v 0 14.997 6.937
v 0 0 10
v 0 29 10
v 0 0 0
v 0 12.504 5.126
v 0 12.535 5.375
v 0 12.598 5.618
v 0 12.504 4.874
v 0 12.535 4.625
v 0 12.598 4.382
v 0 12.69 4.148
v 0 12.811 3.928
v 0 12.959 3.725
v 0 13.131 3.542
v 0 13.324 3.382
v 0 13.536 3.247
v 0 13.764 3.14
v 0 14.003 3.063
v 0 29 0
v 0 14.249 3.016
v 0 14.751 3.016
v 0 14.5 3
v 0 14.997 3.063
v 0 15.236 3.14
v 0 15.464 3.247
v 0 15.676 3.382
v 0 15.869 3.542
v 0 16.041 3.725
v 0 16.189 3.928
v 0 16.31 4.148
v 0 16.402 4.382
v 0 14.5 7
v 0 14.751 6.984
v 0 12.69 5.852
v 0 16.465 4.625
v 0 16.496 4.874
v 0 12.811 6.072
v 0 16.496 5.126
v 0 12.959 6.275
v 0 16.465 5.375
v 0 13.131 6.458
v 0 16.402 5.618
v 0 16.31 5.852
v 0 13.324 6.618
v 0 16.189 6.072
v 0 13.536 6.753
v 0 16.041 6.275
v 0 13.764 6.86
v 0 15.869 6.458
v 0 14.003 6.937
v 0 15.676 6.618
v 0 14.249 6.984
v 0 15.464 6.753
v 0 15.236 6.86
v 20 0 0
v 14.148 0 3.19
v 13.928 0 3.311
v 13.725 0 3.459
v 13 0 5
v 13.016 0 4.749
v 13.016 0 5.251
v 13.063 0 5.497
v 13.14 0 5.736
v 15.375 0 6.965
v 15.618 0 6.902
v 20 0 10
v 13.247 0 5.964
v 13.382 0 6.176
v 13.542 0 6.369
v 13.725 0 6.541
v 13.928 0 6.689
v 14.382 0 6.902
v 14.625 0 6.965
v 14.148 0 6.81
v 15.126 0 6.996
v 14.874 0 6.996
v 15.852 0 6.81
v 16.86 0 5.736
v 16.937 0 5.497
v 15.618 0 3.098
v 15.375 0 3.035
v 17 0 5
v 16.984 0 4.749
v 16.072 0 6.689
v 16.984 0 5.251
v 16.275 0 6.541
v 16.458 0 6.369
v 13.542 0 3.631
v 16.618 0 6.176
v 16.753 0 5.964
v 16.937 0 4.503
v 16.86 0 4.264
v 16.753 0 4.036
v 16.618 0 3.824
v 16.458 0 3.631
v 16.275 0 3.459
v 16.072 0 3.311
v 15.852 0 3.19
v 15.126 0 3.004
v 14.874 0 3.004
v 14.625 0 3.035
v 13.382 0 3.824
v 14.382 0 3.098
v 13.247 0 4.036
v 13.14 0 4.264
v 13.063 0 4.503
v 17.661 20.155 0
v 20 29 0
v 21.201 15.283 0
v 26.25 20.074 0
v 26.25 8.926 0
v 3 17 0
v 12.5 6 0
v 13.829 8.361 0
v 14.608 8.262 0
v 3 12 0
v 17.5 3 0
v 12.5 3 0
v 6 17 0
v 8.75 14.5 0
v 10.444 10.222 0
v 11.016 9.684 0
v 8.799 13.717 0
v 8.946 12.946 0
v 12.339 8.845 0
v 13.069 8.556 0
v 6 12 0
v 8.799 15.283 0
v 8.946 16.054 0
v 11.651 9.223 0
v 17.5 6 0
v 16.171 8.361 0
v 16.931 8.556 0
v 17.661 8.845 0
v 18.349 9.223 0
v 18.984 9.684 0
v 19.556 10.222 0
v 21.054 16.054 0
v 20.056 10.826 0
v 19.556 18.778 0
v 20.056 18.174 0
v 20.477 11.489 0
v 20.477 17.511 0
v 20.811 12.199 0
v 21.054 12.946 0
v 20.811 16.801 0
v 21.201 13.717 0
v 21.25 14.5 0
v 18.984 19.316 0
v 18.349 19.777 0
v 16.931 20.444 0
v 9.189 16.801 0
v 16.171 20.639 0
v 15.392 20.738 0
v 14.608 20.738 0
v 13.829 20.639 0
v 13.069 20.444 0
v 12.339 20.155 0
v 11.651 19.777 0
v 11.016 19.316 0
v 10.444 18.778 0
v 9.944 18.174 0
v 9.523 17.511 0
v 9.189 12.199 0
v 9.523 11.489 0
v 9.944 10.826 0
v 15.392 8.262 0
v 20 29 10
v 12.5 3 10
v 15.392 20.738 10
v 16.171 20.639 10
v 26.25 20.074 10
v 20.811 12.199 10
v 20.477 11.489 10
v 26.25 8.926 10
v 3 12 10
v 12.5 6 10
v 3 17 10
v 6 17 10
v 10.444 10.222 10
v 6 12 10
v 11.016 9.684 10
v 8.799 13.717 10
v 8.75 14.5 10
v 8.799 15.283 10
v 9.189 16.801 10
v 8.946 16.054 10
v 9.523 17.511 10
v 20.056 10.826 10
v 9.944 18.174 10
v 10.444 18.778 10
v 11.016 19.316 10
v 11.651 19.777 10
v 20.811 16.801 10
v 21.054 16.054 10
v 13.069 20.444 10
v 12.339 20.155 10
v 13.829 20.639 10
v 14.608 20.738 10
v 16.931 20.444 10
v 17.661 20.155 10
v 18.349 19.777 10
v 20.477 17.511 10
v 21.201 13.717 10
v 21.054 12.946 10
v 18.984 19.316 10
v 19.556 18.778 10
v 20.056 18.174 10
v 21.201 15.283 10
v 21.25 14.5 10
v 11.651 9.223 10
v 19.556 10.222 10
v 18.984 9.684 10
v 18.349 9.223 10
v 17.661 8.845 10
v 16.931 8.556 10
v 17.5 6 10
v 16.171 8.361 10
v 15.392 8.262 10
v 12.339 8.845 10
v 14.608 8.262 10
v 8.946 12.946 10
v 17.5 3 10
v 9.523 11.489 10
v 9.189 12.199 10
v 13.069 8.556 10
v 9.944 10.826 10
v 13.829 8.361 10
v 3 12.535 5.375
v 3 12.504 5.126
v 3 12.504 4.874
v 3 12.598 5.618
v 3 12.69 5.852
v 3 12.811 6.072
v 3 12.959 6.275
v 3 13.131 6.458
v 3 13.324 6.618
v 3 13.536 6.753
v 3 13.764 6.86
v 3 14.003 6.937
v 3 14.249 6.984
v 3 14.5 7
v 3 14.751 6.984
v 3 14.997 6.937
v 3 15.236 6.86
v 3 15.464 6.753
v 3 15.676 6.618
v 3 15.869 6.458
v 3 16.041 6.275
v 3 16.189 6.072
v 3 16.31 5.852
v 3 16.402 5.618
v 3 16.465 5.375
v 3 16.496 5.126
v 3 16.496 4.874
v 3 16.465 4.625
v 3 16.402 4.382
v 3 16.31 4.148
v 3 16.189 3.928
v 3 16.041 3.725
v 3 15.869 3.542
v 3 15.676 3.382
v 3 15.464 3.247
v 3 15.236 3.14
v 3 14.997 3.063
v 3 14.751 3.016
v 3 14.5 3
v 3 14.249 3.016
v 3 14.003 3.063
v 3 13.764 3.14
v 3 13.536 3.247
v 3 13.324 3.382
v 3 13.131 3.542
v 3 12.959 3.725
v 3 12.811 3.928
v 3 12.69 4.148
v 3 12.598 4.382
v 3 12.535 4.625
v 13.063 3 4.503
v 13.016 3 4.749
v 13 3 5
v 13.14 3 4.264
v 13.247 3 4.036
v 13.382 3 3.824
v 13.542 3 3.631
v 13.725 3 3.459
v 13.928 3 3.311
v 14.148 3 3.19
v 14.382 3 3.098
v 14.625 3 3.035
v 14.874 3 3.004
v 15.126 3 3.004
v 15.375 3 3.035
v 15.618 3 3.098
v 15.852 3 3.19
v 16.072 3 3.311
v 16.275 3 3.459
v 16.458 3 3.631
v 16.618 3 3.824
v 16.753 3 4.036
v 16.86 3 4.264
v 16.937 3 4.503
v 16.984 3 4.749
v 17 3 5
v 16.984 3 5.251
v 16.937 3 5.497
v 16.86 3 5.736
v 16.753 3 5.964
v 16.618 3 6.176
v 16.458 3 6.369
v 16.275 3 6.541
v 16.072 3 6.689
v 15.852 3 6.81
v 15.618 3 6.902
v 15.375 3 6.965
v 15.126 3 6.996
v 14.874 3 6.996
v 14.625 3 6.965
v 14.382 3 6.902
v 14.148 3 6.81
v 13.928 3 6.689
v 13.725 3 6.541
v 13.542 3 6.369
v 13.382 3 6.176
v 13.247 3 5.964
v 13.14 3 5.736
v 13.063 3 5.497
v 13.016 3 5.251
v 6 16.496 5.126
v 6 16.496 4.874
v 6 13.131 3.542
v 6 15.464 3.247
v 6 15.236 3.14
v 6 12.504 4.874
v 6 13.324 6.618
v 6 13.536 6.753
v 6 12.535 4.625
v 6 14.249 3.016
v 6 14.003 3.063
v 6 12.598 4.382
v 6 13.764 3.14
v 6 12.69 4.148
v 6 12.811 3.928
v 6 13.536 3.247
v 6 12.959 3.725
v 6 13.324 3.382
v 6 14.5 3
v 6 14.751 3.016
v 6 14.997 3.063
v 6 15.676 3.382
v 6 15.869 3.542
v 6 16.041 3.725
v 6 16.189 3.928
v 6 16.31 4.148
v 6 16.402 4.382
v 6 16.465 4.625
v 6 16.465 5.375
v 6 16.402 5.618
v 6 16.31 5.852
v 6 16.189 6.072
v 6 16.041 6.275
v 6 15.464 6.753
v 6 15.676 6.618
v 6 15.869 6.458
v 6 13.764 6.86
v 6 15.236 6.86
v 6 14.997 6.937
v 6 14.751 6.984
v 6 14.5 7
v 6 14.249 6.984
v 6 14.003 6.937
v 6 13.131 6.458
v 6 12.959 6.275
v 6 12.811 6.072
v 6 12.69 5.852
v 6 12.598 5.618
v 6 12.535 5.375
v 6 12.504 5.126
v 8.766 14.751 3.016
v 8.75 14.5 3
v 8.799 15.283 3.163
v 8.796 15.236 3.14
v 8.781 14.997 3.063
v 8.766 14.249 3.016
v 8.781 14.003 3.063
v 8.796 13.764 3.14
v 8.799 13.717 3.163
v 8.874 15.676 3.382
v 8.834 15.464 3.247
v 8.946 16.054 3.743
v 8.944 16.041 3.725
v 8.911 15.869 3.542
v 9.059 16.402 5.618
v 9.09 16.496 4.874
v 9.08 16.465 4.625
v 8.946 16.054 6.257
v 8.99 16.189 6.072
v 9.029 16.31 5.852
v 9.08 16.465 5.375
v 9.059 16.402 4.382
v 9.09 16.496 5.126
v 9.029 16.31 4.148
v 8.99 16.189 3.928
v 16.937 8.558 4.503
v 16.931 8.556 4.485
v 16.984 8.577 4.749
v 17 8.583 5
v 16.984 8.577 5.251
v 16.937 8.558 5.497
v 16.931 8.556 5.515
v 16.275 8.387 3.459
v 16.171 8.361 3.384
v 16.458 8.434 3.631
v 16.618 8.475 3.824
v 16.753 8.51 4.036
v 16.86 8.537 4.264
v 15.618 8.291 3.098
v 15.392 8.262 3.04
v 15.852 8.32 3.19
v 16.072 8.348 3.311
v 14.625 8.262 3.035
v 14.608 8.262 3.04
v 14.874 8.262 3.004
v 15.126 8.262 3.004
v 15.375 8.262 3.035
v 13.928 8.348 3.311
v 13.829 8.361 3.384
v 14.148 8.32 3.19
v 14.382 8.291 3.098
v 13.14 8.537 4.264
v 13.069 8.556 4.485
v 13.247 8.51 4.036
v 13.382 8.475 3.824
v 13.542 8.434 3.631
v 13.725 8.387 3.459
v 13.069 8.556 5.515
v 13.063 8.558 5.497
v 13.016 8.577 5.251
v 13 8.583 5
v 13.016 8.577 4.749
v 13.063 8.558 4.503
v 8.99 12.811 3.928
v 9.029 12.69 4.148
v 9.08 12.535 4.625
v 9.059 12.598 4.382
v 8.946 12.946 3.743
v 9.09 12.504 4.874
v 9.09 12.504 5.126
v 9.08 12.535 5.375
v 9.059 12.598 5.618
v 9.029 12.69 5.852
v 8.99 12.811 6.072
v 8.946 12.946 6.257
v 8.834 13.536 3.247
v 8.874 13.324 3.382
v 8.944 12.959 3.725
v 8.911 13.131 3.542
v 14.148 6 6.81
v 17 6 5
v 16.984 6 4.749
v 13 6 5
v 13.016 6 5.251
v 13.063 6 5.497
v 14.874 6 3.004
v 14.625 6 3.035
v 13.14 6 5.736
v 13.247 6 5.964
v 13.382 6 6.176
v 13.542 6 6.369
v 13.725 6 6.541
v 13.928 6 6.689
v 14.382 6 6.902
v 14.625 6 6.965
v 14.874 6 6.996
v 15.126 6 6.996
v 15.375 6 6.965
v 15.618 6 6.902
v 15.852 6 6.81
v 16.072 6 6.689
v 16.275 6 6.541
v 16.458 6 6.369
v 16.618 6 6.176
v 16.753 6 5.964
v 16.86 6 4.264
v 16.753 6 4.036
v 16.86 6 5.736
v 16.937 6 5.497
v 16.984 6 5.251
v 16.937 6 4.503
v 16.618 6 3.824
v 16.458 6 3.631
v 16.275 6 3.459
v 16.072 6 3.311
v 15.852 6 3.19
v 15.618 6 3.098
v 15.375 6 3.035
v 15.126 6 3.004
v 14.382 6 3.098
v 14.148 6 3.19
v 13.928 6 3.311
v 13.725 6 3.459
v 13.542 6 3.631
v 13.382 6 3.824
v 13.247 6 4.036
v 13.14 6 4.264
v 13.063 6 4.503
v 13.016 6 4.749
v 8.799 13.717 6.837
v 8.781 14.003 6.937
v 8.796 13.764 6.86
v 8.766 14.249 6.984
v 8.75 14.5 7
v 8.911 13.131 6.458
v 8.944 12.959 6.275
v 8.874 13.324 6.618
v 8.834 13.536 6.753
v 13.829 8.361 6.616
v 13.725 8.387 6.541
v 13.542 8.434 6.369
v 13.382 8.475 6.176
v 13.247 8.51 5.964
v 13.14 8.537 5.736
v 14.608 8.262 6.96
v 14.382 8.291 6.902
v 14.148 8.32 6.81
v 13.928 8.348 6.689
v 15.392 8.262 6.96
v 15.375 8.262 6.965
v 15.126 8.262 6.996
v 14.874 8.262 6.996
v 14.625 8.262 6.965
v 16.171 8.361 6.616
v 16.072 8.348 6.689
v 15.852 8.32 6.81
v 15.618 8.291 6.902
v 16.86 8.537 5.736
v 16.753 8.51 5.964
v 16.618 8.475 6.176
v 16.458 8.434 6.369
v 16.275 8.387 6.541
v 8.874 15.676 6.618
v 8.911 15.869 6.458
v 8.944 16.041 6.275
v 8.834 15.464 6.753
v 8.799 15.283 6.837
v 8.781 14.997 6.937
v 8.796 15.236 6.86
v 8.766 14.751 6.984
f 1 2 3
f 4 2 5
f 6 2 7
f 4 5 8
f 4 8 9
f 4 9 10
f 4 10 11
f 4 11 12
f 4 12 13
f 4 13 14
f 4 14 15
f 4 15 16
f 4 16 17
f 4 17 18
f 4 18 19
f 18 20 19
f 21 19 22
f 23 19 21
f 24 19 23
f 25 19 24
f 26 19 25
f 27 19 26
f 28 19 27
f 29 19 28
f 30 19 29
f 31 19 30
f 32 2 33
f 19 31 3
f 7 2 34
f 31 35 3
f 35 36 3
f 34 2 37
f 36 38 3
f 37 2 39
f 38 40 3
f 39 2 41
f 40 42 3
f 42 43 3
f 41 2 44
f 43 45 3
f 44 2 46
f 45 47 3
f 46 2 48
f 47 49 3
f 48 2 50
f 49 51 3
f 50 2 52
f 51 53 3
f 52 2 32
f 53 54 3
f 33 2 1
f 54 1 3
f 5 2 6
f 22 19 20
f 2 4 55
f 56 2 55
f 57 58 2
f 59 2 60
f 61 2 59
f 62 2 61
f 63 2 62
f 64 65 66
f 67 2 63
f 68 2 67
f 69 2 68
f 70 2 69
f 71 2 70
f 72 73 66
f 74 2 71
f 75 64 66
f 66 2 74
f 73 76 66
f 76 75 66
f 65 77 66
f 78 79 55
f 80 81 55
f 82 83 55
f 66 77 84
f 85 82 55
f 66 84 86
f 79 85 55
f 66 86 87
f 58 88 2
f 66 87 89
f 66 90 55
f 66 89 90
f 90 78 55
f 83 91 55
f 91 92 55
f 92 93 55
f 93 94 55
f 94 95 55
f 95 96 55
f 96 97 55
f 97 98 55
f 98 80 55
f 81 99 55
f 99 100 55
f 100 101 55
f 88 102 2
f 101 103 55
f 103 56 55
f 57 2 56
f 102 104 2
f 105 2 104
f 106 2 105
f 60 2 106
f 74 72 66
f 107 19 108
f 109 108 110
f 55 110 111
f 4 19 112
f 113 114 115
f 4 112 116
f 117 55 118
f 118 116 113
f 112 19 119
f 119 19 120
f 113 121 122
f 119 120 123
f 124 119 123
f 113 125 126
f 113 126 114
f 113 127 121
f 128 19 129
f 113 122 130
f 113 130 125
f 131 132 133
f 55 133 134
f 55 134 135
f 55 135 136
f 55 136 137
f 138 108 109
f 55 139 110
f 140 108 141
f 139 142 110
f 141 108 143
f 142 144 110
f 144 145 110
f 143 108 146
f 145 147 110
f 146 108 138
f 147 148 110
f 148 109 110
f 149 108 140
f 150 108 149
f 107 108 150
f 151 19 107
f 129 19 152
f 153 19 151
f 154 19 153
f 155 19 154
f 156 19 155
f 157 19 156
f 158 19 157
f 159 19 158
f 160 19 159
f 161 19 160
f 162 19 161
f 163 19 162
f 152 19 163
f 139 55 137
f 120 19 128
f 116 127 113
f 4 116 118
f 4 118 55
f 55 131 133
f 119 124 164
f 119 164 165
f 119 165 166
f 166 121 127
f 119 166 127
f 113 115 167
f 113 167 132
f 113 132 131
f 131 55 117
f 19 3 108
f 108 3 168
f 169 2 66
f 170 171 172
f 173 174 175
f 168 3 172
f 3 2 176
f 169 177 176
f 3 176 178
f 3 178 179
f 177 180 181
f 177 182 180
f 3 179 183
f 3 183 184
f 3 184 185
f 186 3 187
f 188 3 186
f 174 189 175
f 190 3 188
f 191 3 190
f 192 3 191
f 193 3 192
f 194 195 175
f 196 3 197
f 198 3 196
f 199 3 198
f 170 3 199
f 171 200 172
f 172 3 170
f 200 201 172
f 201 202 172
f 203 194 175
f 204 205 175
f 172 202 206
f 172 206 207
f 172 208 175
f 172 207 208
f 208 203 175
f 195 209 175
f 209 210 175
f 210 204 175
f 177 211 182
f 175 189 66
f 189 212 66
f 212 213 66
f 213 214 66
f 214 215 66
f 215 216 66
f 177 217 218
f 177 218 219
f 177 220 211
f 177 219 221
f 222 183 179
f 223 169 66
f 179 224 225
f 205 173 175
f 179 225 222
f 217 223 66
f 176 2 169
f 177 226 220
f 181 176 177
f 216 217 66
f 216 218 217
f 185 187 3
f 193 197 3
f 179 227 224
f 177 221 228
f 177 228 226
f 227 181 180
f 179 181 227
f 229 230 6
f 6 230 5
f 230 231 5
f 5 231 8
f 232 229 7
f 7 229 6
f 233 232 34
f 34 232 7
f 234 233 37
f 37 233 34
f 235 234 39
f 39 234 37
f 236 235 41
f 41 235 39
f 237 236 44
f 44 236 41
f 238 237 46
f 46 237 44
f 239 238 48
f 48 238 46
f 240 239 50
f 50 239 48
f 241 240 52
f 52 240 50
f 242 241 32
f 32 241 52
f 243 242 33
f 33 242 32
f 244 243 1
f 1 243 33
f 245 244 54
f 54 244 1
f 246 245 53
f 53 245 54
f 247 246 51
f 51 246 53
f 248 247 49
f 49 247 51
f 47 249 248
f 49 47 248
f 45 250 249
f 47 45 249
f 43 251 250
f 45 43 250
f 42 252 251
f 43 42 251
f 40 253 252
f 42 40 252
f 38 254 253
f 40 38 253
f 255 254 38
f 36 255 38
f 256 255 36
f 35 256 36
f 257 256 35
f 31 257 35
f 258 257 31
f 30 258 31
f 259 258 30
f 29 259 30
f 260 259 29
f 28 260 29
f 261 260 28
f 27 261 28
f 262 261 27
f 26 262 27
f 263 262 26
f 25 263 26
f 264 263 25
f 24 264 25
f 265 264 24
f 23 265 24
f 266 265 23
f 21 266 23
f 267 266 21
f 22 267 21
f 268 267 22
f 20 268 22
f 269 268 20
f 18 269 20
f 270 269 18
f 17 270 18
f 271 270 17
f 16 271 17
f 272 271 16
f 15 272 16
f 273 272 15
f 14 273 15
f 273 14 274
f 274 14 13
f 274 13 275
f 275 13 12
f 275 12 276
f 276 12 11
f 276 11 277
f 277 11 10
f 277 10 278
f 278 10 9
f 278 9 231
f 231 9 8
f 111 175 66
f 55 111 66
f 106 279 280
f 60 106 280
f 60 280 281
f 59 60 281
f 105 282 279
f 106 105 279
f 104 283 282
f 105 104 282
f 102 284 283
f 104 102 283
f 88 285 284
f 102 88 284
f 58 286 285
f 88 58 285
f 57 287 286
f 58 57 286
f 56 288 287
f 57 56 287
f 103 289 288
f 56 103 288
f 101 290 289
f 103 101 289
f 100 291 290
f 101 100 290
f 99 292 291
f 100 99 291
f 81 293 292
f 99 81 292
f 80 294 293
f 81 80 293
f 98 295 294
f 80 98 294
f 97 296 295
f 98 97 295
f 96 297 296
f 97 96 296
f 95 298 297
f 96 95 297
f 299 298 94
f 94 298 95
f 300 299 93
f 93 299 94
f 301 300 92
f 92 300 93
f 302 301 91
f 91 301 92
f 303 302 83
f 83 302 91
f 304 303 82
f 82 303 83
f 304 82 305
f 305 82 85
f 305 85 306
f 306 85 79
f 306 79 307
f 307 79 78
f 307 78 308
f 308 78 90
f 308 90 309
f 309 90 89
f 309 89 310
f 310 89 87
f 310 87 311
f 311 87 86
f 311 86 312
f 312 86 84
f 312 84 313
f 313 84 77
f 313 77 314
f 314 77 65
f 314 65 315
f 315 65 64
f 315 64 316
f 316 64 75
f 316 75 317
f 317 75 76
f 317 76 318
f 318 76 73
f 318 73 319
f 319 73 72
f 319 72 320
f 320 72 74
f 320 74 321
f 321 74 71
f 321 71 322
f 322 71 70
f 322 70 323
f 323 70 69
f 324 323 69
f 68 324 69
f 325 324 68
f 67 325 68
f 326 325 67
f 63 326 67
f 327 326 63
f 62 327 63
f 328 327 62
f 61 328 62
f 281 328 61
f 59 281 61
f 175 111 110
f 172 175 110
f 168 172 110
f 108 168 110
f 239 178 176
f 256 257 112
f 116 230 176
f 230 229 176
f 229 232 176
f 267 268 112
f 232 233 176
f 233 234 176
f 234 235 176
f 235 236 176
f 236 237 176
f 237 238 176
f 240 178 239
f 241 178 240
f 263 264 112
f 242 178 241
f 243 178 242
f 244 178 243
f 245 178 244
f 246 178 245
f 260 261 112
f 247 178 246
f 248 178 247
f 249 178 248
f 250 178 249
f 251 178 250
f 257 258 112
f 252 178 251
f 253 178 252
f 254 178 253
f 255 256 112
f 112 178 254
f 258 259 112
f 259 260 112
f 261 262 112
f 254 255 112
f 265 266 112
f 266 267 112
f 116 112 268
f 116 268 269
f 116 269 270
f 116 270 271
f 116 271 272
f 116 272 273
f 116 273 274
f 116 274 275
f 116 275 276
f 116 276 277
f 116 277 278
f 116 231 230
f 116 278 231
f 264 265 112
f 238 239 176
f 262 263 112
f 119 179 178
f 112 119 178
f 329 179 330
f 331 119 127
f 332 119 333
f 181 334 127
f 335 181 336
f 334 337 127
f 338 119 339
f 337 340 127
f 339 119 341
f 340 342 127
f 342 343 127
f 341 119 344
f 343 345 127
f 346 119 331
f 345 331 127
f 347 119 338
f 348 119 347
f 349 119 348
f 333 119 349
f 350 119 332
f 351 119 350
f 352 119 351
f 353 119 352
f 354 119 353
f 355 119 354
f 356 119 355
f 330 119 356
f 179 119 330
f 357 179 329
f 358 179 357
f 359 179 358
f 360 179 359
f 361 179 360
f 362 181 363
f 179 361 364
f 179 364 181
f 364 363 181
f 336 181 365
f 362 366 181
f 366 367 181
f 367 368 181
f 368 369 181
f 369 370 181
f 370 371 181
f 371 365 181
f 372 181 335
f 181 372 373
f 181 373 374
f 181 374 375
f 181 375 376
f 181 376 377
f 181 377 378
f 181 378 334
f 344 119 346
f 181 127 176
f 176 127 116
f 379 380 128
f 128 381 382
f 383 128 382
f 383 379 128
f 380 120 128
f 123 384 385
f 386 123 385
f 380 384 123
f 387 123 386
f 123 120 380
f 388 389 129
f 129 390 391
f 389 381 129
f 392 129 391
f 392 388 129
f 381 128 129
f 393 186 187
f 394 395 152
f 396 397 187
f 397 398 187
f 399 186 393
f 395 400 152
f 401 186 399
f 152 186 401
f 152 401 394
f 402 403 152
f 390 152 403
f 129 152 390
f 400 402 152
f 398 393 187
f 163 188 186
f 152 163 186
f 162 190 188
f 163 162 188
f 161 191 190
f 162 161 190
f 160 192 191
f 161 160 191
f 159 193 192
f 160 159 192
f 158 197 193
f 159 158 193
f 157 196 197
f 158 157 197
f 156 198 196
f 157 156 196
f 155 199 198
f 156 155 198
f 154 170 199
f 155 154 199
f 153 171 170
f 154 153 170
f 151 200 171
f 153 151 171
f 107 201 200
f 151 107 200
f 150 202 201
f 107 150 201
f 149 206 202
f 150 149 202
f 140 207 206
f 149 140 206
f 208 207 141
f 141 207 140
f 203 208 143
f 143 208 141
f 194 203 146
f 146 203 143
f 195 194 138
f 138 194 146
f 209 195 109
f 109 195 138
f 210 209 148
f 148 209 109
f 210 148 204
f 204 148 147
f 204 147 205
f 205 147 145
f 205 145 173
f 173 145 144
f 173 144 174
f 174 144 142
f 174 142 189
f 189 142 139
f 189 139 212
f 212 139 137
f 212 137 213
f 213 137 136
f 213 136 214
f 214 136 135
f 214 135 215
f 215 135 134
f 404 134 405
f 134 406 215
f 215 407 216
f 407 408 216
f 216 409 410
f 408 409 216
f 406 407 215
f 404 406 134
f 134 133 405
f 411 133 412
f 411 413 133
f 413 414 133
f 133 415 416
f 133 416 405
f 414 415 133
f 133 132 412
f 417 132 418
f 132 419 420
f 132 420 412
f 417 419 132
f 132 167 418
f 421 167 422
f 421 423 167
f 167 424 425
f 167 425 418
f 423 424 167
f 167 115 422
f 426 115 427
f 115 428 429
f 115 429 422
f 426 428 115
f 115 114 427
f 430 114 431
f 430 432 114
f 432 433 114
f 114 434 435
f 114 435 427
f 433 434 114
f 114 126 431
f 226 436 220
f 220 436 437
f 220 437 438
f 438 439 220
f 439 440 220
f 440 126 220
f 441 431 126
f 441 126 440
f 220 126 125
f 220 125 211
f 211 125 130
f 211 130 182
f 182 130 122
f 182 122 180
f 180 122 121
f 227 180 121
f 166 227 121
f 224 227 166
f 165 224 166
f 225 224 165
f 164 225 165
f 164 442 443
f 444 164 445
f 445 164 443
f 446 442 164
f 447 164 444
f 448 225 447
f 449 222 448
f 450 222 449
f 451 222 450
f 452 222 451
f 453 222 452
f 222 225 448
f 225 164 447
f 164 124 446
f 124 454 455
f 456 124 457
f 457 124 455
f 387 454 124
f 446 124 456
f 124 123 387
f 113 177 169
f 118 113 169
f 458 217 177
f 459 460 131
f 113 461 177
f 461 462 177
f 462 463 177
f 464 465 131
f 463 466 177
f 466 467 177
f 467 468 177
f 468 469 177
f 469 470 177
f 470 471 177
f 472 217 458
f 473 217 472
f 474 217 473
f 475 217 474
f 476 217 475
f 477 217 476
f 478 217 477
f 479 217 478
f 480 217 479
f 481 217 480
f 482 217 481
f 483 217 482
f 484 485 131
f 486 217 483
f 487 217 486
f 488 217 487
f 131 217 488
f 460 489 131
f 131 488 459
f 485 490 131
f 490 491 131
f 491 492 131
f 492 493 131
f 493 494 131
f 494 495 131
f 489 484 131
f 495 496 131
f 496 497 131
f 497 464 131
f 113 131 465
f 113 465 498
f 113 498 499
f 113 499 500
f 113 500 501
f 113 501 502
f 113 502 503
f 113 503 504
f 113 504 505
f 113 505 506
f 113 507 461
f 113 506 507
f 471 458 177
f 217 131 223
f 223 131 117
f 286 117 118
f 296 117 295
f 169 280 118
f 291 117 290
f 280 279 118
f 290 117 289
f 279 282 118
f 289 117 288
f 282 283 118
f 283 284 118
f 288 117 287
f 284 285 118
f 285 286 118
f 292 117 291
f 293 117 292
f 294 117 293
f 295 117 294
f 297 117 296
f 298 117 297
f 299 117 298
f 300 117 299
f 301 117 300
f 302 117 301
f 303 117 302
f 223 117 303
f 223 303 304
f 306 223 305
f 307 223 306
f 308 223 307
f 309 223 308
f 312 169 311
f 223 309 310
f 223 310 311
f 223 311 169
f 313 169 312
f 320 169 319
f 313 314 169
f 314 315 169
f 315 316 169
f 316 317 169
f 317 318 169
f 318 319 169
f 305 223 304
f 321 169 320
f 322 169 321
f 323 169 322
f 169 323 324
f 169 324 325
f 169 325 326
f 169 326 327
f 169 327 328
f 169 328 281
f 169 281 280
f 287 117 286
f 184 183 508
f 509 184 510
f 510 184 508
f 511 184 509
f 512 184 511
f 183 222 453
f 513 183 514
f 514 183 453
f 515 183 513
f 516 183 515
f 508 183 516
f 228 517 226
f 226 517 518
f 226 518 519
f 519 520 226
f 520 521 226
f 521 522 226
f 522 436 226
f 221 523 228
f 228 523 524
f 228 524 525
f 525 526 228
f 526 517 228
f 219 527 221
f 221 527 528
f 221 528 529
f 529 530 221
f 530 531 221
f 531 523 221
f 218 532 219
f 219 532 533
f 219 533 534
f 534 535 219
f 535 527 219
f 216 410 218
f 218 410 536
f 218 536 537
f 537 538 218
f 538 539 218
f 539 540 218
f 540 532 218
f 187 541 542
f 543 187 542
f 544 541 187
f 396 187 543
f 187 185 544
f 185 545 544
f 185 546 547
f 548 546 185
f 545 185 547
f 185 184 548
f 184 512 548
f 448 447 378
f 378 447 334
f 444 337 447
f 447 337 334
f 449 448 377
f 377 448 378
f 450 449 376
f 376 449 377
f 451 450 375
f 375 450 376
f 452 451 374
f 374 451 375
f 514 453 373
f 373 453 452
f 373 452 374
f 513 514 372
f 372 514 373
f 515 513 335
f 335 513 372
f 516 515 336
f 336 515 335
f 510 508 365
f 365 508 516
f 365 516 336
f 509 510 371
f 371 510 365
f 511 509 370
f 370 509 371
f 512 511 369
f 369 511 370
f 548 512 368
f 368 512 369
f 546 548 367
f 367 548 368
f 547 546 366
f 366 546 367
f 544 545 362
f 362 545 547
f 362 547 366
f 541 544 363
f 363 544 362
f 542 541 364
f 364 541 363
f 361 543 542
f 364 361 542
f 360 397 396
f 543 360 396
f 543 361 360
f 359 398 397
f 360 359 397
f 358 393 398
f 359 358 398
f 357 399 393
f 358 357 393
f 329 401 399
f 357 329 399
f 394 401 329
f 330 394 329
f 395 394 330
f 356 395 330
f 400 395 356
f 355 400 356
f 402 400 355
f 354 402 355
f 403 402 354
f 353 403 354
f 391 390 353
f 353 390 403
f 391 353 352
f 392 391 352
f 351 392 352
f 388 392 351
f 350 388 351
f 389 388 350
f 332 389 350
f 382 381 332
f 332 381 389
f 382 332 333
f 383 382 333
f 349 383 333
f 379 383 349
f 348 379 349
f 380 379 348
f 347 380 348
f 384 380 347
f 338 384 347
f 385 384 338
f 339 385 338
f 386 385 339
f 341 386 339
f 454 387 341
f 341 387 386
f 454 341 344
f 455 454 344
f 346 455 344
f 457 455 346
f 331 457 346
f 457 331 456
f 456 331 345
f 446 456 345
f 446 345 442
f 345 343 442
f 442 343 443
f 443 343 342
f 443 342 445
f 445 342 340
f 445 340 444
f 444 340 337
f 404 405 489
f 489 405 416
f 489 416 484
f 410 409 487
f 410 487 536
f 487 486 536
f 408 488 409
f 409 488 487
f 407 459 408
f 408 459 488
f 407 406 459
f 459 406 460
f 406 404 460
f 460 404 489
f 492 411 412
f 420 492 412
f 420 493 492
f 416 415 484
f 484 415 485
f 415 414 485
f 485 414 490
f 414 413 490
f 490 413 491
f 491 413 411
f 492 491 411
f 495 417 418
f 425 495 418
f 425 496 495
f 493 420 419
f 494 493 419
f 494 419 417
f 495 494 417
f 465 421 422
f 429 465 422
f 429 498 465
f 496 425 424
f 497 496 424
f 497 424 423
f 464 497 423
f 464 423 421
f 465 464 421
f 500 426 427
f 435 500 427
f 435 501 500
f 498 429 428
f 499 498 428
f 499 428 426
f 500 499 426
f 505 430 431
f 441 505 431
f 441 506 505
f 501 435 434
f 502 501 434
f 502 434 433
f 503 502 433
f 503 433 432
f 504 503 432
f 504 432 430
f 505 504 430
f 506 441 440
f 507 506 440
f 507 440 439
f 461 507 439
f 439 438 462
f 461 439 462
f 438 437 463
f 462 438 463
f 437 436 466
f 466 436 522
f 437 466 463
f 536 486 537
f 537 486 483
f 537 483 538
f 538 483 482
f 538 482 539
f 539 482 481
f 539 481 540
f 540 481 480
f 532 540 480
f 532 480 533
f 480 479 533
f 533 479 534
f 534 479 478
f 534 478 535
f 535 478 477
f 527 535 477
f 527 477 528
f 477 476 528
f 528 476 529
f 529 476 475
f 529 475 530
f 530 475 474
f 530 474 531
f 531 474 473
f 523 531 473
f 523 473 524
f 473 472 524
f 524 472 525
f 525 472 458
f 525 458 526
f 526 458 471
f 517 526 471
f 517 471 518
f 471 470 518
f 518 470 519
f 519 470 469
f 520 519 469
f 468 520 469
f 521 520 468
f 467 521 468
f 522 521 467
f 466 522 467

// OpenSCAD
longueur=29;
largeur=35;
trou_m3=2;
ecrou_m3=3.3;
h=10;
ecart=55;
r_tube=6.25;
pos_tube=15;
l_moteur=26;


module fixation_portique(){
	difference(){
		cube([pos_tube+r_tube+5,longueur,h]);

		translate([pos_tube,longueur/2,-5]){cylinder(h=20, r=r_tube, $fn=50);}

		//trou pour serrage sur tube
		translate([pos_tube-2.5,3,-5]){cube([5,3,20]);}
		translate([pos_tube,-5,h/2]){rotate([-90,0,0])cylinder(h=15, r=trou_m3, $fn=50);}

		//trou pour serrage dans boite
		//translate([-5,longueur/2,h/2]){rotate([0,90,0])cylinder(h=15, r=trou_m3, $fn=50);}
		//translate([pos_tube,longueur/2,h/2]){rotate([0,-90,0])cylinder(h=12, r=ecrou_m3, $fn=6);}
		translate([3,longueur/2-2.5,-5]){cube([3,5,20]);}
		translate([-5,longueur/2,h/2]){rotate([0,90,0])cylinder(h=15, r=trou_m3, $fn=50);}

		//cassage des coins
		translate([20,0,-5]){rotate([0,0,-35])cube([30,30,20]);}
		translate([20,longueur,-5]){rotate([0,0,-55])cube([30,30,20]);}


	}

}
module support_endstop(){
	difference(){
		cube([28.5,longueur,h]);
		
		translate([1.5,4.5,-5]){cube([30,6.5,20]);}
		translate([0,18.5,-5]){cube([35,20,20]);}

		//trou pour serrage contact de fin de course
		translate([23.5,-5,h/2]){rotate([-90,0,0])cylinder(h=30, r=trou_m3, $fn=50);}
		translate([23.5,15,h/2]){rotate([-90,0,0])cylinder(h=30, r=ecrou_m3, $fn=6);}
	}

}

fixation_portique();
//translate([pos_tube+r_tube+5,0,0]){support_endstop();}
